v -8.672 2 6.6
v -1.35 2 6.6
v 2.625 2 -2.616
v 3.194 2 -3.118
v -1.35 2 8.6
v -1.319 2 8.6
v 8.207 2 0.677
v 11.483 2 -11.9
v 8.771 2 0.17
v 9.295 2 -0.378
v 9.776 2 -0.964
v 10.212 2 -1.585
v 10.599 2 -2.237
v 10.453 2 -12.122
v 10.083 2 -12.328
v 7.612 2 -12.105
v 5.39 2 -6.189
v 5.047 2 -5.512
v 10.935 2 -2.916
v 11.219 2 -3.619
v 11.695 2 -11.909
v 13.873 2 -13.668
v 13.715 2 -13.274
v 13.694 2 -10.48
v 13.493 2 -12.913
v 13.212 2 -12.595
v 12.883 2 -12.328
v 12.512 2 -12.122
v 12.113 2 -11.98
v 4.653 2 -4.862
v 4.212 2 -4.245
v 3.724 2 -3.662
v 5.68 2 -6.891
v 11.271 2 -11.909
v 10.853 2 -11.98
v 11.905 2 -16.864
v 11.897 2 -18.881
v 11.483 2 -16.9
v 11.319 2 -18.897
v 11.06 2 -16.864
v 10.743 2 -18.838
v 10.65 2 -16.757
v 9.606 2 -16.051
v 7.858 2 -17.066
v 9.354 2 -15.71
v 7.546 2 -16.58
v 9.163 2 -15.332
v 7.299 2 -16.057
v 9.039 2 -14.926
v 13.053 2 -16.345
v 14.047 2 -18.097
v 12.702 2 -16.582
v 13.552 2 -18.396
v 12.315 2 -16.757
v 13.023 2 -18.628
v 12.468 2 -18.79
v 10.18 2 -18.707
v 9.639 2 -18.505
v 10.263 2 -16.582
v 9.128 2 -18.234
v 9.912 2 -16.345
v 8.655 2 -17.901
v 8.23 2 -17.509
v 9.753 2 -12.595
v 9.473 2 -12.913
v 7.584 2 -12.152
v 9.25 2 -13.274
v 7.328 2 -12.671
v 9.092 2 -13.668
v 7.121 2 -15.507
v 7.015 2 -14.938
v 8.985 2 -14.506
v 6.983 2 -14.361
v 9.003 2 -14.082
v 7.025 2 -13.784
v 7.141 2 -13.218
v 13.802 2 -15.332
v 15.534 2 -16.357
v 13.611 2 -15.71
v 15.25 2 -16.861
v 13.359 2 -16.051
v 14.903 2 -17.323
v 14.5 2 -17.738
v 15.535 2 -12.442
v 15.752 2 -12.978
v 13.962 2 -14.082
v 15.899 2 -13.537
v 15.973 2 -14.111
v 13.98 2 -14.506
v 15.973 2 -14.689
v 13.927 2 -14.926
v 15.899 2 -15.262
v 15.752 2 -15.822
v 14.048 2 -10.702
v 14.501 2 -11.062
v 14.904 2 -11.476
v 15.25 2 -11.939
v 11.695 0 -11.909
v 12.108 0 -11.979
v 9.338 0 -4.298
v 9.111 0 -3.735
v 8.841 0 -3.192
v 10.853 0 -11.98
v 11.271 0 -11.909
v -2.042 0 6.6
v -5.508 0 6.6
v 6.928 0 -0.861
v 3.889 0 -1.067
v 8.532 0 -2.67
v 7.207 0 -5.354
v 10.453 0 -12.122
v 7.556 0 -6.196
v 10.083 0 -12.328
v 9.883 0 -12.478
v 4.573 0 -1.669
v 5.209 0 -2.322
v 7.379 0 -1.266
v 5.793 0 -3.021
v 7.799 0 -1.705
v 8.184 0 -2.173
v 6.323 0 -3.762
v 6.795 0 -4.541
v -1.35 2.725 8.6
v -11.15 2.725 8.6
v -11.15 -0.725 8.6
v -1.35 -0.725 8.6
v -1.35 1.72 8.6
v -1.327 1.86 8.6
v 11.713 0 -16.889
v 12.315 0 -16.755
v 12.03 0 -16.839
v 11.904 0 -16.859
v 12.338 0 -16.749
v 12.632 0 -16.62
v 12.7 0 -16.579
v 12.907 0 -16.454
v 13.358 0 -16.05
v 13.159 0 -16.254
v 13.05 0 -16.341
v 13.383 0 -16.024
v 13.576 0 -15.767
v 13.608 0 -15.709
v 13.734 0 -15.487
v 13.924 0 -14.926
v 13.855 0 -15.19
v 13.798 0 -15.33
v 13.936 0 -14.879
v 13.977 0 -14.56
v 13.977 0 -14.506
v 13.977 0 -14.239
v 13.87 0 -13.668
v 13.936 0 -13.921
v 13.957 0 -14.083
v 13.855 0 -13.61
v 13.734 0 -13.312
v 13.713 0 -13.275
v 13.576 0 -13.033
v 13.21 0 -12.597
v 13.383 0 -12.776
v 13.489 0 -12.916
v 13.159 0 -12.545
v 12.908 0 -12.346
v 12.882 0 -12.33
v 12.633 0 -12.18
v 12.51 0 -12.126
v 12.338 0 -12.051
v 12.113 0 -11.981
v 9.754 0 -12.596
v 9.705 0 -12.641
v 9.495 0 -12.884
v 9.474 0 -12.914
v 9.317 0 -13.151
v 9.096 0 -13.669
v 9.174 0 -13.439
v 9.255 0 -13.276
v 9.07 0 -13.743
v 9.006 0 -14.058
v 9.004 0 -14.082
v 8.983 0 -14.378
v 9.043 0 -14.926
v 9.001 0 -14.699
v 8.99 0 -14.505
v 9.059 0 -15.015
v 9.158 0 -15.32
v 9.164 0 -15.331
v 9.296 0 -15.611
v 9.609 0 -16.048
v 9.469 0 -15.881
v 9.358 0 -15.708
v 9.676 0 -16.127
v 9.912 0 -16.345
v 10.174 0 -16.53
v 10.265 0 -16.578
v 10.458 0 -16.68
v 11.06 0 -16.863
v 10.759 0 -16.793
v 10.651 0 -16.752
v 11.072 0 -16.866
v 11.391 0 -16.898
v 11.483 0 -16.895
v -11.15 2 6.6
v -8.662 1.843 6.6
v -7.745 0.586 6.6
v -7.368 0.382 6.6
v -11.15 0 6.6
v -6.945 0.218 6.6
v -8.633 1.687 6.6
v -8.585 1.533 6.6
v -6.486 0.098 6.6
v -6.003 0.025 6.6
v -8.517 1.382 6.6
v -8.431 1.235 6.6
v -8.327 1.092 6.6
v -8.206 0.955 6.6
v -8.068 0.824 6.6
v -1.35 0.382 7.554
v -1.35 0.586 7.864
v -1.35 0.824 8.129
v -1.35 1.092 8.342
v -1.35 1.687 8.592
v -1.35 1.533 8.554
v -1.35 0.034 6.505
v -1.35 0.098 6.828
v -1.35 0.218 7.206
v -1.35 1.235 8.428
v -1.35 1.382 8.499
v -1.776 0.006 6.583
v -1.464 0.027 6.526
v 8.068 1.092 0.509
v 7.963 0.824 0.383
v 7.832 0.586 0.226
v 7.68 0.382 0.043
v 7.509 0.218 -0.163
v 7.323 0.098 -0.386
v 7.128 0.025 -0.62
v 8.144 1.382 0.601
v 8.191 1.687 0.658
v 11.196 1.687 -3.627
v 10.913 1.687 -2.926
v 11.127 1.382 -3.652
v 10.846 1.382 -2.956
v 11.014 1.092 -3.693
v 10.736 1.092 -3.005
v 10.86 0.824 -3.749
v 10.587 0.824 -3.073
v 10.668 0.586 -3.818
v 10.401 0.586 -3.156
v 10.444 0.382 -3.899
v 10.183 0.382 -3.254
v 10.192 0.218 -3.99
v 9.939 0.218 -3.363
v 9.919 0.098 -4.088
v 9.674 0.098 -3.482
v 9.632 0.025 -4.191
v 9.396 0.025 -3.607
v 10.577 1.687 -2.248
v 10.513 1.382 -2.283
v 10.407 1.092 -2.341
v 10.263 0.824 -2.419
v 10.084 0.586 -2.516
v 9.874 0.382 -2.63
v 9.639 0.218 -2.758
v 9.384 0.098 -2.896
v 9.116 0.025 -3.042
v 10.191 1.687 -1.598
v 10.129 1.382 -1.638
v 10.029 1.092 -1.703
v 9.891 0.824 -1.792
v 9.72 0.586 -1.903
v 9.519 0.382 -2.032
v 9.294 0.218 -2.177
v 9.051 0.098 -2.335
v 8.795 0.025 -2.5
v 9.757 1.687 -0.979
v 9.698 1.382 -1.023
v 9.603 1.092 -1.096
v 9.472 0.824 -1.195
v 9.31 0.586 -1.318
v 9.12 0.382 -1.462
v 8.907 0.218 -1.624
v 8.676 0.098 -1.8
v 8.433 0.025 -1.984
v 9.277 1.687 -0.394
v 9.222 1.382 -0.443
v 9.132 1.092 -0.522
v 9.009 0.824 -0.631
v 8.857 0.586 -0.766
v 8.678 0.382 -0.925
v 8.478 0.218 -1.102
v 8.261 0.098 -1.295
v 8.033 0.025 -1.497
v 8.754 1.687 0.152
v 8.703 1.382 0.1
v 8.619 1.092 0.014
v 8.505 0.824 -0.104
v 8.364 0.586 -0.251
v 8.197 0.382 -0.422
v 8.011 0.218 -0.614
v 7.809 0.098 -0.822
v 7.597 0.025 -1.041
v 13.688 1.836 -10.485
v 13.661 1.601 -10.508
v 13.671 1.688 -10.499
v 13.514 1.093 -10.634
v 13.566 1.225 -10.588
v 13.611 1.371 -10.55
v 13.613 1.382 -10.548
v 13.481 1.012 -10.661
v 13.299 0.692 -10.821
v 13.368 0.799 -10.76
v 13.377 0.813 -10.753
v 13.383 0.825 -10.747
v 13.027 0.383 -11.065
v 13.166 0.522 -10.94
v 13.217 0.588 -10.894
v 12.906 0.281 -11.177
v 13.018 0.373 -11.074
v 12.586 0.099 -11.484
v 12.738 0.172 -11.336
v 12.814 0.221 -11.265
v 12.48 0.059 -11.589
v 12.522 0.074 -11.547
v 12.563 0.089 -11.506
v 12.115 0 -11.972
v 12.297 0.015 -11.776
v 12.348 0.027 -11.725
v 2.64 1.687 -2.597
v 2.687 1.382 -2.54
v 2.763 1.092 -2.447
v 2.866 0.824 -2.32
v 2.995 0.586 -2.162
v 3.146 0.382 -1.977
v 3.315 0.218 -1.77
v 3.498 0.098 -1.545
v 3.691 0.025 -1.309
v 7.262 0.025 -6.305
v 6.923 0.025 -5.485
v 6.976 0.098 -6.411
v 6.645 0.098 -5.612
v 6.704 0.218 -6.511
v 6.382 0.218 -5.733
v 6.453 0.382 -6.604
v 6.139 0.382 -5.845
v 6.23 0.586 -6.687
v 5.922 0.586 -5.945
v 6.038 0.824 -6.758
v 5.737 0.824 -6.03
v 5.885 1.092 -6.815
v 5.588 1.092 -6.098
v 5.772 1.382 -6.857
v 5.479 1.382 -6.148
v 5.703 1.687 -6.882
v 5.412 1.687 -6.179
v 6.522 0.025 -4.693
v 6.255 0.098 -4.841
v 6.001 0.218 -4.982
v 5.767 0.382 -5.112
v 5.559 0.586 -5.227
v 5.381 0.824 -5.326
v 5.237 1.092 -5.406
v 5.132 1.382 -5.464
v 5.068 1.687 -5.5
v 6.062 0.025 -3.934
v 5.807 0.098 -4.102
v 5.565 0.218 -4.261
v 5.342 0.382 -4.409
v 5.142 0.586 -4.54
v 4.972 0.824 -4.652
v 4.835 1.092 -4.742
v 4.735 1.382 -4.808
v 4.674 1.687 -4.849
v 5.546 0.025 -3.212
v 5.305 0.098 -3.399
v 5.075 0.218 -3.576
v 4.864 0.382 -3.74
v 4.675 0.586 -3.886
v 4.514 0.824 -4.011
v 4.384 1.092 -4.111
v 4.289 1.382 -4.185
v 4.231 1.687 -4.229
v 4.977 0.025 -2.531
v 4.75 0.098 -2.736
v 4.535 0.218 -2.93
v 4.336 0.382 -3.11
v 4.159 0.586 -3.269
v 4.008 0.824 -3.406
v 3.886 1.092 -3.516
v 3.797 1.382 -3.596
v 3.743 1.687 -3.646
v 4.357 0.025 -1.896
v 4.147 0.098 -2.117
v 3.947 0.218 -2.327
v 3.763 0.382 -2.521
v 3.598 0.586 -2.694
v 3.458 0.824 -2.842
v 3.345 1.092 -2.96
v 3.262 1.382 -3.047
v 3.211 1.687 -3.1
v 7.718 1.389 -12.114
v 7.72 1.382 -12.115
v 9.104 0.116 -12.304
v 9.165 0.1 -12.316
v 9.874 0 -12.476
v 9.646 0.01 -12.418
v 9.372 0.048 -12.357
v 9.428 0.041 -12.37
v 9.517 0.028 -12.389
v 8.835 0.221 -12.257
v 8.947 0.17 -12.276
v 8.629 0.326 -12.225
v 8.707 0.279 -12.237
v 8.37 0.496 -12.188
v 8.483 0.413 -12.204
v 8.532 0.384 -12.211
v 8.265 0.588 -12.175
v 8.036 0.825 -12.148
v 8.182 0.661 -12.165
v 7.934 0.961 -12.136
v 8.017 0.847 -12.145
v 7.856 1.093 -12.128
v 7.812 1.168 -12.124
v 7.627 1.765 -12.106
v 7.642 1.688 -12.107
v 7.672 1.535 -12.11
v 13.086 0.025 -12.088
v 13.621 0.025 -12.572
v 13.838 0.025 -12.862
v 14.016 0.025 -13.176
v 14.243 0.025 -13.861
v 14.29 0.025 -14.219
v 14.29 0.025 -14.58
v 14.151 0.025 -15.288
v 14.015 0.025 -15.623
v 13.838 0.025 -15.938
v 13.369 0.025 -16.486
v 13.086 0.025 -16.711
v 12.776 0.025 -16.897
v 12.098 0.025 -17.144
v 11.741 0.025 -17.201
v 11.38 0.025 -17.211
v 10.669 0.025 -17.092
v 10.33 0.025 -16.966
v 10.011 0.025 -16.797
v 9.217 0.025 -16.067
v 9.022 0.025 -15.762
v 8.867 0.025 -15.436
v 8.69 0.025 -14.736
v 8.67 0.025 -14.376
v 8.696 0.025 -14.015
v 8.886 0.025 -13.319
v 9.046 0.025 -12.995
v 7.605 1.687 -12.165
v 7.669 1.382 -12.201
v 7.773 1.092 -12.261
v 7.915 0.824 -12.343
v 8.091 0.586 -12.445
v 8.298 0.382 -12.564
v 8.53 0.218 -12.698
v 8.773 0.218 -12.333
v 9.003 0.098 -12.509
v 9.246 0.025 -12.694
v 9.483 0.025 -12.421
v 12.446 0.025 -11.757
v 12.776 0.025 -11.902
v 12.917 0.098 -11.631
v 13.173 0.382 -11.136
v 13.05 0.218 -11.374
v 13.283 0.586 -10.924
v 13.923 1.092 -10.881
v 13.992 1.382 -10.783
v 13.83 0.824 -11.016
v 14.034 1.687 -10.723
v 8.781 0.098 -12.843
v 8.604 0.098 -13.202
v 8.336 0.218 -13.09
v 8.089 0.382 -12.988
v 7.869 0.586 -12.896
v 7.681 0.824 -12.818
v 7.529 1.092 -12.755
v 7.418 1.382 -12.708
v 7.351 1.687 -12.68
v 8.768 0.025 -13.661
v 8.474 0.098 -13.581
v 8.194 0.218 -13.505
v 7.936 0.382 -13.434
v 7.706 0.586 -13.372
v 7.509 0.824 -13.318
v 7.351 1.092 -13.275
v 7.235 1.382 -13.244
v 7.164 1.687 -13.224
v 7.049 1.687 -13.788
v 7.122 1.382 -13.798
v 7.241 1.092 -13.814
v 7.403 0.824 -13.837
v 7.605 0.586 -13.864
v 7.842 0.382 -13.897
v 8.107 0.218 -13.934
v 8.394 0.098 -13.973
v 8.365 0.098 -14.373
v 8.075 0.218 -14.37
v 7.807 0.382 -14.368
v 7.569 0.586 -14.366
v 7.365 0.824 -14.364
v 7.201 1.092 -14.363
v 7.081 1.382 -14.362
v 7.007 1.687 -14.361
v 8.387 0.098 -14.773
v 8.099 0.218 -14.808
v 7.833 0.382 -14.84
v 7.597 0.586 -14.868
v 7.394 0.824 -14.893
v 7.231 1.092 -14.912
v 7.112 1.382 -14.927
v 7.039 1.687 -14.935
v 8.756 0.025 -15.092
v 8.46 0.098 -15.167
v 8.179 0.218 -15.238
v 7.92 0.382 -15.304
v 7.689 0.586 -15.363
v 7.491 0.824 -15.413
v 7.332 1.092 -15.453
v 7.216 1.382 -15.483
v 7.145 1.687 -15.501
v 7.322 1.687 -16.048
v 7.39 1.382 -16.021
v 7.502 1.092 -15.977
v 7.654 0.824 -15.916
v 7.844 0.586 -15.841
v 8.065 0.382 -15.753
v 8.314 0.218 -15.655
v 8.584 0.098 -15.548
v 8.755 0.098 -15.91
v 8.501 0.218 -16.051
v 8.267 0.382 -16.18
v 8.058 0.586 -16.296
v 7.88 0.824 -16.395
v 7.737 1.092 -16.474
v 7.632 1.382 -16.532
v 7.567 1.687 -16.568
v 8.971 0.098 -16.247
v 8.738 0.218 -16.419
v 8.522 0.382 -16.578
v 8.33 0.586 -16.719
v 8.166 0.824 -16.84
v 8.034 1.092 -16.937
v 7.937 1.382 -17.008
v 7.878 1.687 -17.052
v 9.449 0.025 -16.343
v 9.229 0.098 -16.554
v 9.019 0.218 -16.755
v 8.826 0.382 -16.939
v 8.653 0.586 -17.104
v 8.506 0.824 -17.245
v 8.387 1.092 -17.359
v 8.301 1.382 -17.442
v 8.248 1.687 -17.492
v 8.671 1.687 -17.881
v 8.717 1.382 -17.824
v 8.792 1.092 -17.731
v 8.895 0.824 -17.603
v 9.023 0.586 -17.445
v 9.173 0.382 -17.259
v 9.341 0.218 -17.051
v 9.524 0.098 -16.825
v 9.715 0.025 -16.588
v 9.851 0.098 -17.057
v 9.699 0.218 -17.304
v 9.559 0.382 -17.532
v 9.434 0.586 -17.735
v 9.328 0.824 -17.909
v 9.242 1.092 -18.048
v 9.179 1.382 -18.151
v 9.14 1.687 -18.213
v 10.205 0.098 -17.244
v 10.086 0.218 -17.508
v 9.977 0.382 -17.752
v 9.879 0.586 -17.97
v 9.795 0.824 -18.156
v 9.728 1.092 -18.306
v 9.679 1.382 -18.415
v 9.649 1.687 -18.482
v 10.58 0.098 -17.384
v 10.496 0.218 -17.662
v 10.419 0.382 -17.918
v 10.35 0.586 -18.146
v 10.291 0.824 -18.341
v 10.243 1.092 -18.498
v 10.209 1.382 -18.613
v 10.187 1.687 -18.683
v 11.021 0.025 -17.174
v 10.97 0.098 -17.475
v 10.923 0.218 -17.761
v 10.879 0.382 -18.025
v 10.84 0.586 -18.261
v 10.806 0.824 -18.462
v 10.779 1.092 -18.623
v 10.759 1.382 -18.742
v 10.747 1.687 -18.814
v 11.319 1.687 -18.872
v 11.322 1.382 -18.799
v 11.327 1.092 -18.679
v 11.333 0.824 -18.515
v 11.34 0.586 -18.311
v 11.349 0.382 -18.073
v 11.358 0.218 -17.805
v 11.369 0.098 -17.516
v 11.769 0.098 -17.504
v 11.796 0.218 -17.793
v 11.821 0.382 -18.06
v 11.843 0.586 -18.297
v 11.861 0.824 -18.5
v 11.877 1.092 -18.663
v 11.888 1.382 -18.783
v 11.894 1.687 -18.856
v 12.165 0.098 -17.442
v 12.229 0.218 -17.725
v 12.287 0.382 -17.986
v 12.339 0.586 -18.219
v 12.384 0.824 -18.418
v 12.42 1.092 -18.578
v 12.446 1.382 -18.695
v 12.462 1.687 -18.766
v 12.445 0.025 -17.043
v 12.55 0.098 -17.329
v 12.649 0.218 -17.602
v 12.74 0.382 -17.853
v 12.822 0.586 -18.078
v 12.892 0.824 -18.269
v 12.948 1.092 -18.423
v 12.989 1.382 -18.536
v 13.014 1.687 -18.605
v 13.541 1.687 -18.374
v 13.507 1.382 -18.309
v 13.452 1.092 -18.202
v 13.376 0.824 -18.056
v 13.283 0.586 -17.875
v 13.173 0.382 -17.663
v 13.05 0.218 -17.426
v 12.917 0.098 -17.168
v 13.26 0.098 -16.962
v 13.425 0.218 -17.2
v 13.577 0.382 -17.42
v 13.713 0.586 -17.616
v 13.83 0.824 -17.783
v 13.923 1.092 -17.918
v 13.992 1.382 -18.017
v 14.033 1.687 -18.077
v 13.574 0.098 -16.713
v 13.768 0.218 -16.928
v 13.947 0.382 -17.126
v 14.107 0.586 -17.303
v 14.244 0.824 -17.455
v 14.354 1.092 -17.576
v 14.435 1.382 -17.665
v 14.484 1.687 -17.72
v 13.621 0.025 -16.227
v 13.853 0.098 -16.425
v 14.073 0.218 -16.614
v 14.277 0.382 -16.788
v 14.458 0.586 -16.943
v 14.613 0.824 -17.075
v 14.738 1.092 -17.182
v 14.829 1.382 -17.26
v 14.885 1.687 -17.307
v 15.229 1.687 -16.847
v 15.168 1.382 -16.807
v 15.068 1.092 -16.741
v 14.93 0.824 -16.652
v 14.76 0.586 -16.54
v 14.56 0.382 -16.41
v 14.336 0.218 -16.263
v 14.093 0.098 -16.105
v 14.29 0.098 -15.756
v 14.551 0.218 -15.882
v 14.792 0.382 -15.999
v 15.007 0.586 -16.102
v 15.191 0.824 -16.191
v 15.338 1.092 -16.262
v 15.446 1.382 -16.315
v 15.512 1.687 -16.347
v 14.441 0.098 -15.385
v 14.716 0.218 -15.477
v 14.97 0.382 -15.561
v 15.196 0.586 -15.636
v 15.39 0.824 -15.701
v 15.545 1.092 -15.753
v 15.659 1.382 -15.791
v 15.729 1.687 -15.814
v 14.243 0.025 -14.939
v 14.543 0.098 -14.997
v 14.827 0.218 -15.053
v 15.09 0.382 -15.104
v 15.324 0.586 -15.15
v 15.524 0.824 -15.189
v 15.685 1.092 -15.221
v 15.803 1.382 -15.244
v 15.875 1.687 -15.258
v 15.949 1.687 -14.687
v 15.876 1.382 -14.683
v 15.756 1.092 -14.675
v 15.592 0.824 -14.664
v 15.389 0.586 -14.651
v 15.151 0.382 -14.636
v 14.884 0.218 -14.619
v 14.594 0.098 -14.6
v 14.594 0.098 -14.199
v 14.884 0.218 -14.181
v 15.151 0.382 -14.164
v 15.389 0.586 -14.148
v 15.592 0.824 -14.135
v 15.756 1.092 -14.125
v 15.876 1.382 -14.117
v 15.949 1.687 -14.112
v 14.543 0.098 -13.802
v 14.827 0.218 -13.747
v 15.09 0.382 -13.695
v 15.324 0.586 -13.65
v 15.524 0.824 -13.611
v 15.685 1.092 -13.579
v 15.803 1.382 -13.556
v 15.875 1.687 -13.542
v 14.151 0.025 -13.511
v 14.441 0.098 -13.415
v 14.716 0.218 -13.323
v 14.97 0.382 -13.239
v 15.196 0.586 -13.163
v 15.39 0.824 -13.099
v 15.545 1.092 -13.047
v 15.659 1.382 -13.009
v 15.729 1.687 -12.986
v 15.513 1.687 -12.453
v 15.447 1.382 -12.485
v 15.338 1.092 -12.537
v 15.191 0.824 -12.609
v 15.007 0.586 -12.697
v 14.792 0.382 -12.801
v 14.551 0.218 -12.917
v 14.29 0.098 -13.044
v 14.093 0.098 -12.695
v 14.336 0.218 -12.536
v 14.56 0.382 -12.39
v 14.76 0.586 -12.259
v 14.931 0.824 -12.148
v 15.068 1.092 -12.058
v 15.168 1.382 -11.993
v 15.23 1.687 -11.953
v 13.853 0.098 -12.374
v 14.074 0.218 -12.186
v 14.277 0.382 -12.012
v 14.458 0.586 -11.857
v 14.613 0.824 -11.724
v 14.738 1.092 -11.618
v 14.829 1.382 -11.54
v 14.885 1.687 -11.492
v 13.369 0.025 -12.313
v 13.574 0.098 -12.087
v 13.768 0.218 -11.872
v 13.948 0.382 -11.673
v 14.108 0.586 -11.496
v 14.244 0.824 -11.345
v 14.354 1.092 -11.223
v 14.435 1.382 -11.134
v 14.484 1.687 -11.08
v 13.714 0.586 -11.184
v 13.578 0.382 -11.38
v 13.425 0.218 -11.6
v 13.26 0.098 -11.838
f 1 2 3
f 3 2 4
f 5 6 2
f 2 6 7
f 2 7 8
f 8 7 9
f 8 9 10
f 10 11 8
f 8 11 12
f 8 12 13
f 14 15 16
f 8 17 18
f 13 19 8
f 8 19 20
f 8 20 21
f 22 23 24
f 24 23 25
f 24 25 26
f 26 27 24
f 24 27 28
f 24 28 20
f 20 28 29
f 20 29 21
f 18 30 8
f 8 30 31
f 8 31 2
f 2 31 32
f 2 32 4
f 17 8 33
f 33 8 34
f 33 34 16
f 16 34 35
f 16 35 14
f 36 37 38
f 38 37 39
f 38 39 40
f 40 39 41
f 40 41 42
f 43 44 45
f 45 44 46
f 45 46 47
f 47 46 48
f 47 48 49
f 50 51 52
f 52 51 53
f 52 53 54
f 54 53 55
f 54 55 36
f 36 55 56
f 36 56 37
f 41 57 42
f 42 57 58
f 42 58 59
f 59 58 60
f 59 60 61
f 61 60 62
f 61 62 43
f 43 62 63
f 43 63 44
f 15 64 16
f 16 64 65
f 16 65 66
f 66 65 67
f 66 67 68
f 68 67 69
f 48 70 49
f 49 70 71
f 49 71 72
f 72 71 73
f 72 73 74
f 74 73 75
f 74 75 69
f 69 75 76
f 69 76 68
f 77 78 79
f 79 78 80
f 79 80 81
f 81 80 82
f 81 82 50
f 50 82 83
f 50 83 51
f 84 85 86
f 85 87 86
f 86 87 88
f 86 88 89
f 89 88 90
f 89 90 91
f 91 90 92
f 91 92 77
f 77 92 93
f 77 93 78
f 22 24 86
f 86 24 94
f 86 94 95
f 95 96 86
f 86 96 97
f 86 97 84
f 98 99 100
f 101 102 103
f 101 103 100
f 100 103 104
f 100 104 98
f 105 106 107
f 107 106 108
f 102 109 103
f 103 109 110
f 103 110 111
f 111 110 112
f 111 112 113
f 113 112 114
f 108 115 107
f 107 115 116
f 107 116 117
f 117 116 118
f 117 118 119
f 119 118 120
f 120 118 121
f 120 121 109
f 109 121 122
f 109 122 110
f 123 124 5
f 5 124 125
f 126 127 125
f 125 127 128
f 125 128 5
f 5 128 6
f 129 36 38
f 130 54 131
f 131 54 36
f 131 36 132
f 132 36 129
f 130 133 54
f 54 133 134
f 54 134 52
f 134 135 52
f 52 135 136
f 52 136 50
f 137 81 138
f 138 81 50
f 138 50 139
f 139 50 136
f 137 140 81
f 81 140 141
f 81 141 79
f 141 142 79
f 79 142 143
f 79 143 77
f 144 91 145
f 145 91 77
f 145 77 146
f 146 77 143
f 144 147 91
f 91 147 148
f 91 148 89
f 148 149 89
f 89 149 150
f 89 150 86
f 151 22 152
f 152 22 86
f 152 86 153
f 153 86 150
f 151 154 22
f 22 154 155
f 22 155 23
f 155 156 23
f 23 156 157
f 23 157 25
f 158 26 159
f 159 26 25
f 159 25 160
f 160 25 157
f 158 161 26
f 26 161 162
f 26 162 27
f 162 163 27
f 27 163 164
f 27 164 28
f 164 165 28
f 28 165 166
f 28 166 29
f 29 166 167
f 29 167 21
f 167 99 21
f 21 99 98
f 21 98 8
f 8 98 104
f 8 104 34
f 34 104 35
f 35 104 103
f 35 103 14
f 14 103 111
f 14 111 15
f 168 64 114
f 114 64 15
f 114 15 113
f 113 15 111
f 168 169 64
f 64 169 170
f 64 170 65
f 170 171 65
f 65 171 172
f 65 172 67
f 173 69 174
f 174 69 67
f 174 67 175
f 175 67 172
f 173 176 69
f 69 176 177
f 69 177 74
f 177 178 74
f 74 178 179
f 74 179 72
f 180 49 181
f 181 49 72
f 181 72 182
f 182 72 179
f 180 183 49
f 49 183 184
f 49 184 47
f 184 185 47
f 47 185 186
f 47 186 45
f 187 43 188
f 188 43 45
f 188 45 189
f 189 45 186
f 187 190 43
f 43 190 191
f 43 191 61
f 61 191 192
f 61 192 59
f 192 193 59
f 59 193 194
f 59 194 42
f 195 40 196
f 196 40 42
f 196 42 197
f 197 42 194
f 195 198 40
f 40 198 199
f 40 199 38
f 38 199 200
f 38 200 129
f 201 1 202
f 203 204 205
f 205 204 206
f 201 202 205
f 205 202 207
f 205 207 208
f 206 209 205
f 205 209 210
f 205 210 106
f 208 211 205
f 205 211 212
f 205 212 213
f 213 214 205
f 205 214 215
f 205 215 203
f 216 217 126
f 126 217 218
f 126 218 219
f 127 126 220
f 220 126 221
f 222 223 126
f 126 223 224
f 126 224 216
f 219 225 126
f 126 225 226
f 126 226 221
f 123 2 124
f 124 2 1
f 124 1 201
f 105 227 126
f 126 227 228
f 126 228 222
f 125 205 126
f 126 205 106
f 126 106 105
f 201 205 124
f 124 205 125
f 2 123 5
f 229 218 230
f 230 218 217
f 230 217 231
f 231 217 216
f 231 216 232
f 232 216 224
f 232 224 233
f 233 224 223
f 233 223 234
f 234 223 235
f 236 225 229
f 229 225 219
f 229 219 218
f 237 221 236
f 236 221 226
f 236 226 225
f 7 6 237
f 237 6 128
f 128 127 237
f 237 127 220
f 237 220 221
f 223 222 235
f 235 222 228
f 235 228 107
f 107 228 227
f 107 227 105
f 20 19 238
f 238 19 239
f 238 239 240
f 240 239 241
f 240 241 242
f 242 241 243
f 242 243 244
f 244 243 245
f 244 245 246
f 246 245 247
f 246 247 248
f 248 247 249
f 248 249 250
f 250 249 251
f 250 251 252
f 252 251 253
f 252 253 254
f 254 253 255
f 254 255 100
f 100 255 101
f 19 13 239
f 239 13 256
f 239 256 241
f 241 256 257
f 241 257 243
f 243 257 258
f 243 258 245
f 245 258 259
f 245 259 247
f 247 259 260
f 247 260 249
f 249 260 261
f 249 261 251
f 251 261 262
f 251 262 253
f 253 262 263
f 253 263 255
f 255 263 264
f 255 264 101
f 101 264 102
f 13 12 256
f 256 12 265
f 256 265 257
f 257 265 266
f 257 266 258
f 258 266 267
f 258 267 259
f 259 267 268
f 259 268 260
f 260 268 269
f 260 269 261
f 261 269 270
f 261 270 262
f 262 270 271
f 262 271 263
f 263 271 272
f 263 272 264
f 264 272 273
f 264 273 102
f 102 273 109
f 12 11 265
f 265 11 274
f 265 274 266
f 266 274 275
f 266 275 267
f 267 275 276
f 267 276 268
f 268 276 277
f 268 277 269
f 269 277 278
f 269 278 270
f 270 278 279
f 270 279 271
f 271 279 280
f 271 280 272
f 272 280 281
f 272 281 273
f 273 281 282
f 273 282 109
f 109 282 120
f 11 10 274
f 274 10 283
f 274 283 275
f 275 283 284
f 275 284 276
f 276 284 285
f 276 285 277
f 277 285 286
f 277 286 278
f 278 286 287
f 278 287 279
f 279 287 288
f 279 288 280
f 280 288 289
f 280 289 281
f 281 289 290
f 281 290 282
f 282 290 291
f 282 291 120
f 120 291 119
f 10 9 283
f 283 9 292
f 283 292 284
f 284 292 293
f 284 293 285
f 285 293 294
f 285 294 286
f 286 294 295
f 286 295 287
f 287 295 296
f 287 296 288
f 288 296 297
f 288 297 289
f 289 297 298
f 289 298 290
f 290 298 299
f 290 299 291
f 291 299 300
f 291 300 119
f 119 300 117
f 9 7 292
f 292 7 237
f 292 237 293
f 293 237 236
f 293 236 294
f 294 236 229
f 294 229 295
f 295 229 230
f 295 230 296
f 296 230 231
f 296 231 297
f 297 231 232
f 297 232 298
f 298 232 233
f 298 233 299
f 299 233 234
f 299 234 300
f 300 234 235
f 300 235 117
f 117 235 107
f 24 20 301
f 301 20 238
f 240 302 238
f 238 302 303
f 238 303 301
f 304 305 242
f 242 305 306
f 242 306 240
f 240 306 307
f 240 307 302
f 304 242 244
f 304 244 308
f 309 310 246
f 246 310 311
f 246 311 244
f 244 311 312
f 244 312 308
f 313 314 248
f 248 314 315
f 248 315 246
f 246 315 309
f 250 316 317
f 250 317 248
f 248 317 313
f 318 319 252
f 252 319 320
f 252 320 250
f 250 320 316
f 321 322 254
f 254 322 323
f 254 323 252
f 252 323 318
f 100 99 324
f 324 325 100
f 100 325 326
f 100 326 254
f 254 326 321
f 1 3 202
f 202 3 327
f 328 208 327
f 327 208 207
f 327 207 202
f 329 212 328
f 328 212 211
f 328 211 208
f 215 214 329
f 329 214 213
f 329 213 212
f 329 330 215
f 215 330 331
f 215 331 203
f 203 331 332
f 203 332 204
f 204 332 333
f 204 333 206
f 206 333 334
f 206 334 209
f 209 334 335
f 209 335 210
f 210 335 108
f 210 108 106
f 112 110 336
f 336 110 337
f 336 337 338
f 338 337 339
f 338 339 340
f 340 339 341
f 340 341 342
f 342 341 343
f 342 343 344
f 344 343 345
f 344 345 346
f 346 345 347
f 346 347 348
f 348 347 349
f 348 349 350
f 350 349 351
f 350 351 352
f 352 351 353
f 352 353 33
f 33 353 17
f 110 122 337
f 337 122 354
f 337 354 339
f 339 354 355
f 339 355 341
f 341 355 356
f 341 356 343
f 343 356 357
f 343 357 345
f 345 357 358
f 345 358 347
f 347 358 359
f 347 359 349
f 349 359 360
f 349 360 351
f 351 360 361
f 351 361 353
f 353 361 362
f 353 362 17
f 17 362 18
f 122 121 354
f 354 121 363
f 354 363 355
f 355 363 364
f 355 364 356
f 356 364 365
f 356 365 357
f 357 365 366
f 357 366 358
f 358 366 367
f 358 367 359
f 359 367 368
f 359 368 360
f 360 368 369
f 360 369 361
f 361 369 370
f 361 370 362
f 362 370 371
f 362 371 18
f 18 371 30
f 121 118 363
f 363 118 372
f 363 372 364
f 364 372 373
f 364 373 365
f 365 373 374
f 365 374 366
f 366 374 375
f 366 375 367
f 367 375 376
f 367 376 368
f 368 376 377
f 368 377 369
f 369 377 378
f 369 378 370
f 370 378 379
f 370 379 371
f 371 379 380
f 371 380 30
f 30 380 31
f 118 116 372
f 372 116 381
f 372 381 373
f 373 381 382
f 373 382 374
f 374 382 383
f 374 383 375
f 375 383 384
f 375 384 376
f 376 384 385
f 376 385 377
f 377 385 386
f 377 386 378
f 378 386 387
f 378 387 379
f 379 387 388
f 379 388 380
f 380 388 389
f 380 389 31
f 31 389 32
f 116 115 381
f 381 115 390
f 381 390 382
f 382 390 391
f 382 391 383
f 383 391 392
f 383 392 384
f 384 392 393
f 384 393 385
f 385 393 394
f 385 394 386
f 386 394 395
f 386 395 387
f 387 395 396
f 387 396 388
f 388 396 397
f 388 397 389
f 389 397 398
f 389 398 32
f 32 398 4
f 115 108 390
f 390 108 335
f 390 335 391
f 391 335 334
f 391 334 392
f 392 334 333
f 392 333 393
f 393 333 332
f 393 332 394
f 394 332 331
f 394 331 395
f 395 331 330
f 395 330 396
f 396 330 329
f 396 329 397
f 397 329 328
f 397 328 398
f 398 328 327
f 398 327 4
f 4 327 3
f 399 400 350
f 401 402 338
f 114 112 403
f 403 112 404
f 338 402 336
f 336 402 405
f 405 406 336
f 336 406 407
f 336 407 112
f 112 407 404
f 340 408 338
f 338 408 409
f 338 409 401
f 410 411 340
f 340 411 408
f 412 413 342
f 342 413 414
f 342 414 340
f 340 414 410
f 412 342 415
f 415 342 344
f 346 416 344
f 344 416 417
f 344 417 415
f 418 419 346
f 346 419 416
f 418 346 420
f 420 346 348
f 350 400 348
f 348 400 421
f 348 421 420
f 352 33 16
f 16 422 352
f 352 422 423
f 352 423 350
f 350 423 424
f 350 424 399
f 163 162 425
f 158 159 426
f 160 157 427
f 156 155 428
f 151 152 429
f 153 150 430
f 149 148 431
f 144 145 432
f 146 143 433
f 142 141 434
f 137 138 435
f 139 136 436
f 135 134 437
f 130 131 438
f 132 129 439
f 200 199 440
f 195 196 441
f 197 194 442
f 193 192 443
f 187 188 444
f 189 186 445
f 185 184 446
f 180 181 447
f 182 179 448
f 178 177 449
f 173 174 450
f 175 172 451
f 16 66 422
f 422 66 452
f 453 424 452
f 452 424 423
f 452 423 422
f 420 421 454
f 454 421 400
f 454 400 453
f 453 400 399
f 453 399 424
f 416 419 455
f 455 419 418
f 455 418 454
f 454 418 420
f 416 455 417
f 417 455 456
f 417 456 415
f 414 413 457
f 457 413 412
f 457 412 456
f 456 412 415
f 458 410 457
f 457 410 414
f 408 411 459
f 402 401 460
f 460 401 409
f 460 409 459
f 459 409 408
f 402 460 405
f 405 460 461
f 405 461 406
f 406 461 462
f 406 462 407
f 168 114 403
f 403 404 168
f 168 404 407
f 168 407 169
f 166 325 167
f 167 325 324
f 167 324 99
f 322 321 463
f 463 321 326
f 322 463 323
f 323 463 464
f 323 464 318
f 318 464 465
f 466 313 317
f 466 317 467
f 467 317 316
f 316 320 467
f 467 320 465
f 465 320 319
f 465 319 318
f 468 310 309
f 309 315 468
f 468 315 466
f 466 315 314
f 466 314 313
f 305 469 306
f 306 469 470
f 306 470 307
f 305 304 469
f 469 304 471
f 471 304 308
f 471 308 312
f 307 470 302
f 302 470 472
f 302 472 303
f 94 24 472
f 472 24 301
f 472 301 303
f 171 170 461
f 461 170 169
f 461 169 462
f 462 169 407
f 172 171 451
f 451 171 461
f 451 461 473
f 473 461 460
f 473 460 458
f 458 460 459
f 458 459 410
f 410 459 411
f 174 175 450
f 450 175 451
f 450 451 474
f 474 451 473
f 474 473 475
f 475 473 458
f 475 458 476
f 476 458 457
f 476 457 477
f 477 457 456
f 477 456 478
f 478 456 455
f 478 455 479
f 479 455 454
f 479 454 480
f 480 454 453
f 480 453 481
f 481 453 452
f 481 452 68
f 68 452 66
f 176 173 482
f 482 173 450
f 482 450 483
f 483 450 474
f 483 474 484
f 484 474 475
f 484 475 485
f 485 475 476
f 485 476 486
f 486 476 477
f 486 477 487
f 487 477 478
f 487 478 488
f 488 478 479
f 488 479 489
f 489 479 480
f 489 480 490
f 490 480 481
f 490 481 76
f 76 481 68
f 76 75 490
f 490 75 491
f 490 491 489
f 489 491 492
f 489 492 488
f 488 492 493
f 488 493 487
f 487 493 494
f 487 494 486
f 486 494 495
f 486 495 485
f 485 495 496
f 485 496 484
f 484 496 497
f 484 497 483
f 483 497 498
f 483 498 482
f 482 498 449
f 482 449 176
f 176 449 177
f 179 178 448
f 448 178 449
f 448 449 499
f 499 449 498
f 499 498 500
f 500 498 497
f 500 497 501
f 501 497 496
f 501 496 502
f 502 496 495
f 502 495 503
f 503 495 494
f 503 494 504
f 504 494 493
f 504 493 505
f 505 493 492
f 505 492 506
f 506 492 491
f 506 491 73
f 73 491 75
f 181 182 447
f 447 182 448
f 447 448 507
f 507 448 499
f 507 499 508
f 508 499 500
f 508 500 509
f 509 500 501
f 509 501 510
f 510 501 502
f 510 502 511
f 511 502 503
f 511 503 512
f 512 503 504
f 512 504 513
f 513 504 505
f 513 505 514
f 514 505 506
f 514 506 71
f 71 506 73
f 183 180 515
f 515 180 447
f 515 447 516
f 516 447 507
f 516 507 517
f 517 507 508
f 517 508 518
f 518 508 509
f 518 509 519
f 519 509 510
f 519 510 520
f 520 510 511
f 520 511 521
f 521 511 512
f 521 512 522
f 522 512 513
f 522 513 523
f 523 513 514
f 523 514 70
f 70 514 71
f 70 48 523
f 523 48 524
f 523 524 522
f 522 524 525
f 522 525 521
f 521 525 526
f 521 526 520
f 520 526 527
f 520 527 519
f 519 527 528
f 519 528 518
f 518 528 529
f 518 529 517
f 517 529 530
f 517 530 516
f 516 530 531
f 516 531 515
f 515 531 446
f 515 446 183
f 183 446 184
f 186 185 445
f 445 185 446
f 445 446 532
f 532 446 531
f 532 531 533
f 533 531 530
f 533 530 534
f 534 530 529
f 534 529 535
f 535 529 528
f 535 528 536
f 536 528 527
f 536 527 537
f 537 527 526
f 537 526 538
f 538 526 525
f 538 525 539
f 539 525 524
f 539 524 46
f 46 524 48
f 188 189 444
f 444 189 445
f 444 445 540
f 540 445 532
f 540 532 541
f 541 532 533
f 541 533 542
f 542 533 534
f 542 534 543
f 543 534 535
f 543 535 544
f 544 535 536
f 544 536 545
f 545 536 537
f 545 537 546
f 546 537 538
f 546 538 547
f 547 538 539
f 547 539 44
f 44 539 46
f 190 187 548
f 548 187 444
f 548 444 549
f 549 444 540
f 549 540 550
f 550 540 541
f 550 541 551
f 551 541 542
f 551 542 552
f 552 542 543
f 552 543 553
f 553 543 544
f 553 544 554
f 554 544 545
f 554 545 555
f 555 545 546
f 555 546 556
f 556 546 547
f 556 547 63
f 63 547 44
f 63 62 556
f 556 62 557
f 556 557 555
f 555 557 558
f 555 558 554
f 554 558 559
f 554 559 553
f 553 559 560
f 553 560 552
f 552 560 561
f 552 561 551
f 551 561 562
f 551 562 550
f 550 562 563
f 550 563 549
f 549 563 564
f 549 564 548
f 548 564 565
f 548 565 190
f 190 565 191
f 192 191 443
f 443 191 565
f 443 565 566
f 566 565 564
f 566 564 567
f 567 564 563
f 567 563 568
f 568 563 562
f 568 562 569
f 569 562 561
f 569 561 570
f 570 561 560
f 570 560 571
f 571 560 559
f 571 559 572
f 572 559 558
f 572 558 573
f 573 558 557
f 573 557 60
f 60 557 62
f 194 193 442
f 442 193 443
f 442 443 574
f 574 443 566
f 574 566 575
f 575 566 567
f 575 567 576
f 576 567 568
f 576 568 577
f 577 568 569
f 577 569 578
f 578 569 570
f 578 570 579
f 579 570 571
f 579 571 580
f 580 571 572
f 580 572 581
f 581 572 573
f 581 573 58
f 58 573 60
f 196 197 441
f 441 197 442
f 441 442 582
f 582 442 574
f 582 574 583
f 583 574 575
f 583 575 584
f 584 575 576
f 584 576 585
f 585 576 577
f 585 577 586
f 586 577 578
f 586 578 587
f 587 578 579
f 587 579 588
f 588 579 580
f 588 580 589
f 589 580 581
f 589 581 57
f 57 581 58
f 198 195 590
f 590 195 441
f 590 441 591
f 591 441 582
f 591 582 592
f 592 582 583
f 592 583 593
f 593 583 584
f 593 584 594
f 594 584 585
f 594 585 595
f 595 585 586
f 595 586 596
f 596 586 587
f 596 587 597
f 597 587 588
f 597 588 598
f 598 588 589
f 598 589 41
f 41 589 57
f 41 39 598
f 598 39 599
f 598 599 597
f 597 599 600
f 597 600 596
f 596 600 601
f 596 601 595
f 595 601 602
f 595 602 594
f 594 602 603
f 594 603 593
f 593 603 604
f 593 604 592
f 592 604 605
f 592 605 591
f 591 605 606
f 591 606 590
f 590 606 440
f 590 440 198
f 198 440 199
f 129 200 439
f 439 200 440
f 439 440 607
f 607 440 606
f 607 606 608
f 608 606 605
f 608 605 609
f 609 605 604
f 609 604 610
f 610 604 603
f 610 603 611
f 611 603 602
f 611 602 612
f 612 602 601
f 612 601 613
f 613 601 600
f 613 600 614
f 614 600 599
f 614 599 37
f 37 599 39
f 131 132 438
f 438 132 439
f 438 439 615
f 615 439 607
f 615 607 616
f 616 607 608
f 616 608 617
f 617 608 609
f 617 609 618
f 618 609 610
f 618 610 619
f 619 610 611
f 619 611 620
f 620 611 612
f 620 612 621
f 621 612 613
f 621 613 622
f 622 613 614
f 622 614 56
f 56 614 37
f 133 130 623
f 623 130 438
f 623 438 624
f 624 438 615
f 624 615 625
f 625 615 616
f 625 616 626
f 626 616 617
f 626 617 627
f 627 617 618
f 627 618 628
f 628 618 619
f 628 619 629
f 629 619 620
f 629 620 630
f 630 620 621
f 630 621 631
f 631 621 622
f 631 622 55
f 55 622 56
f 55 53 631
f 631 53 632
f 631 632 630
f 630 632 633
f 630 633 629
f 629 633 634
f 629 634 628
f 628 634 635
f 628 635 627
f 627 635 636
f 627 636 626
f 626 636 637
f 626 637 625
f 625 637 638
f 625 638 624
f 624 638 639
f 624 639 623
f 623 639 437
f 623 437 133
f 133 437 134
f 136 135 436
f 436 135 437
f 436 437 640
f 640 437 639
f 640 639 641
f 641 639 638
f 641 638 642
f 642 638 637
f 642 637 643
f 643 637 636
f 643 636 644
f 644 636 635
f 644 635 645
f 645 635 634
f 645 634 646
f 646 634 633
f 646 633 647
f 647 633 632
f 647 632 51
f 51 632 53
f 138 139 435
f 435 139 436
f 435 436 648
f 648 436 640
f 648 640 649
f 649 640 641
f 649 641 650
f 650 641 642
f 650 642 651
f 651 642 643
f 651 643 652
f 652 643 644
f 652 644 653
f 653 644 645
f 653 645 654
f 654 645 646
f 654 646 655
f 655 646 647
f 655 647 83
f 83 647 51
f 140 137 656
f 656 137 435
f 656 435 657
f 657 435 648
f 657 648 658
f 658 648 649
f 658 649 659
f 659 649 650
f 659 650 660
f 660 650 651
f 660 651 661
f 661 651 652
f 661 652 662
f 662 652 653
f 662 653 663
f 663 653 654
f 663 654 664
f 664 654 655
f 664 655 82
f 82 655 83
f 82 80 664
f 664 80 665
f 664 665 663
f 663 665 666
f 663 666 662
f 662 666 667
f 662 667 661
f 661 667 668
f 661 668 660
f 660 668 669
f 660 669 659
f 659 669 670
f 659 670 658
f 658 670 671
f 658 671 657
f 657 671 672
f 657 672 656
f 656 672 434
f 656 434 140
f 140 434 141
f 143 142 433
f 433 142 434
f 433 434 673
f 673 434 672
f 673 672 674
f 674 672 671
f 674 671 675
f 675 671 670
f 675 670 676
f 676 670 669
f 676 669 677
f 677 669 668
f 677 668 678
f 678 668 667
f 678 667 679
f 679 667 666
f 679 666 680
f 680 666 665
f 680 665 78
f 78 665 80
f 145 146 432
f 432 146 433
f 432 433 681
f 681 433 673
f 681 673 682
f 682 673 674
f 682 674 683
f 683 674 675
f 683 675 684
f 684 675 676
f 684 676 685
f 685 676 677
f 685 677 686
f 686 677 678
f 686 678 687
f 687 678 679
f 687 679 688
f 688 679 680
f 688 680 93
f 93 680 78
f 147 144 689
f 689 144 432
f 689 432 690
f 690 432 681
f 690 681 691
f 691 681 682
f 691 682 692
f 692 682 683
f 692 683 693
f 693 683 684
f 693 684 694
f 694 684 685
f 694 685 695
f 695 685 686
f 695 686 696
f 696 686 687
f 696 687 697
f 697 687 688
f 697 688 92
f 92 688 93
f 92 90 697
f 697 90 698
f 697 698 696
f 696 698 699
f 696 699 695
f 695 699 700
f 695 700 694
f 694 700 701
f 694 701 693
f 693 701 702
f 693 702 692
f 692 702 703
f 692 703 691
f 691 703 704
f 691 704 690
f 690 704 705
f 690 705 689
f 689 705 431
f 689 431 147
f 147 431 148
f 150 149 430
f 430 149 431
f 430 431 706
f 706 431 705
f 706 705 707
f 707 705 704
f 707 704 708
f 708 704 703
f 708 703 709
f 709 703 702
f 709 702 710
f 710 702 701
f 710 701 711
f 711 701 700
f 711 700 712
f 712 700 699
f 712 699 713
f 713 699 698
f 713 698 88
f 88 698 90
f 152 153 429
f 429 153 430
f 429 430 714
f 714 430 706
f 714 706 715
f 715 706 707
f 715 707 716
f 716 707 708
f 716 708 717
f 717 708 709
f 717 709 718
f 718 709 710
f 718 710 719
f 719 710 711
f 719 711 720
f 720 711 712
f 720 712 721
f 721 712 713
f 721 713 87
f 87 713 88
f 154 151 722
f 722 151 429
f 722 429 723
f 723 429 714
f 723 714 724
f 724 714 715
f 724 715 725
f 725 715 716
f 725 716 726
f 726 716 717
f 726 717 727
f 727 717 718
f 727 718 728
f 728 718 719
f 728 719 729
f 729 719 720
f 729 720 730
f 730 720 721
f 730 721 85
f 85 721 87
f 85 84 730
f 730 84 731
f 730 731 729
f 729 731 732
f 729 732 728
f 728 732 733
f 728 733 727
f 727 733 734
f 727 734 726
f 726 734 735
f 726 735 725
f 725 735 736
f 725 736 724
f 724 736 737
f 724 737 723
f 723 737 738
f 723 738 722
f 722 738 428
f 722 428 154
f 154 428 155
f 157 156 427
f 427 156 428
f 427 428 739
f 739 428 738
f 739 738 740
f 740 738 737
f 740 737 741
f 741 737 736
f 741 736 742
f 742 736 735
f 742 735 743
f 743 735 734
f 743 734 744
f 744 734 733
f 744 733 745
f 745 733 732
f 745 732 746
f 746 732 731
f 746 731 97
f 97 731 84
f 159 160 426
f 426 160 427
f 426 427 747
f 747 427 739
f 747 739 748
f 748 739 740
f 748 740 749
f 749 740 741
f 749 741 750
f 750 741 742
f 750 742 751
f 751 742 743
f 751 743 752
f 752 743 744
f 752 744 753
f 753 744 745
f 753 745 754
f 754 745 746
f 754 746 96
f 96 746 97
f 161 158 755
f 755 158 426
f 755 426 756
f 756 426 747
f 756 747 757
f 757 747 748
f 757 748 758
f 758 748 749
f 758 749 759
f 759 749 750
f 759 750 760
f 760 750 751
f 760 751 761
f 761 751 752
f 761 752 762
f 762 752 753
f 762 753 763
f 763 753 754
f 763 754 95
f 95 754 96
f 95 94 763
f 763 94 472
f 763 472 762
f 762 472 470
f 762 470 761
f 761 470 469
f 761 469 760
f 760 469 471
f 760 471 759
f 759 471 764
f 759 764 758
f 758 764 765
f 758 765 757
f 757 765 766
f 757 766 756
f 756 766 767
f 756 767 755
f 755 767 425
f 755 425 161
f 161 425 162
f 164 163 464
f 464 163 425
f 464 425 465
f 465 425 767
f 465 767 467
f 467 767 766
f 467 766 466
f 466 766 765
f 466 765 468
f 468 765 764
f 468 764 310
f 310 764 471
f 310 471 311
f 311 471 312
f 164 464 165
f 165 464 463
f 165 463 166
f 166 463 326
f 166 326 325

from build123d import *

# Parameters (mm, degrees)
SKETCH1_R                = 2.5
BOSS_EXTRUDE1_DEPTH      = 2
FILLET1_R                = 10
FILLET2_R                = 10
BOSS_EXTRUDE2_DEPTH      = 5.3
BOSS_EXTRUDE2_DEPTH_BACK = 4.5
FILLET7_R                = 2
FILLET8_R                = 2


with BuildPart() as part:
    # Sketch1 → Boss-Extrude1 (new body)
    with BuildSketch(Plane(origin=(0, 0, 0), x_dir=(1, 0, 0), z_dir=(0, 1, 0))):
        with BuildLine():
            Line((4.734439188, 4.337505525), (-11.123424173, -8.60036928))
            Line((-11.123424173, -8.60036928), (-1.31921636, -8.60036928))
            Line((-1.31921636, -8.60036928), (10.297086052, 1.061724594))
            Line((10.297086052, 1.061724594), (13.693514413, 10.480195617))
            ThreePointArc((13.693514413, 10.480195617), (12.643820806, 18.747230765), (7.611903427, 12.10452542))
            Line((7.611903427, 12.10452542), (4.734439188, 4.337505525))
        make_face()
        with Locations(Location((11.482625797, 14.39963072, 0), (0, 0, 270))):
            Circle(SKETCH1_R, mode=Mode.SUBTRACT)
    extrude(amount=BOSS_EXTRUDE1_DEPTH)

    # Fillet1
    fillet1_edges = [part.edges().sort_by_distance(p)[0] for p in [
        (10.297086052, 1, -1.061724594),
    ]]
    fillet(fillet1_edges, radius=FILLET1_R)

    # Fillet2
    fillet2_edges = [part.edges().sort_by_distance(p)[0] for p in [
        (4.734439188, 1, -4.337505525),
    ]]
    fillet(fillet2_edges, radius=FILLET2_R)

    # Sketch6 → Boss-Extrude2 (add, two sides: drawn at the far end of the back side and taken through both)
    with BuildSketch(Plane(origin=(-6.65, 0, 0), x_dir=(0, 0, -1), z_dir=(1, 0, 0)).offset(-BOSS_EXTRUDE2_DEPTH_BACK)):
        Polygon((-8.60036928, 2.725), (-6.60036928, 2), (-6.60036928, 0), (-8.60036928, -0.725), align=None)
    extrude(amount=BOSS_EXTRUDE2_DEPTH + BOSS_EXTRUDE2_DEPTH_BACK)

    # Fillet7
    fillet7_edges = [part.edges().sort_by_distance(p)[0] for p in [
        (6.646109692, 0, -9.497598443),
        (4.438286722, 0, -4.549211293),
        (-3.023640286, 0, 1.992039552),
        (12.456410034, 0, -7.049641368),
        (9.999920903, 0, -1.270100821),
        (3.443902415, 0, 4.638549149),
    ]]
    fillet(fillet7_edges, radius=FILLET7_R - 0.0001)  # a hair under: the kernel refuses the full size

    # Fillet8
    fillet8_edges = [part.edges().sort_by_distance(p)[0] for p in [
        (12.744313914, 0, -18.719137995),
    ]]
    fillet(fillet8_edges, radius=FILLET8_R - 0.0001)  # a hair under: the kernel refuses the full size


solid = part.part
